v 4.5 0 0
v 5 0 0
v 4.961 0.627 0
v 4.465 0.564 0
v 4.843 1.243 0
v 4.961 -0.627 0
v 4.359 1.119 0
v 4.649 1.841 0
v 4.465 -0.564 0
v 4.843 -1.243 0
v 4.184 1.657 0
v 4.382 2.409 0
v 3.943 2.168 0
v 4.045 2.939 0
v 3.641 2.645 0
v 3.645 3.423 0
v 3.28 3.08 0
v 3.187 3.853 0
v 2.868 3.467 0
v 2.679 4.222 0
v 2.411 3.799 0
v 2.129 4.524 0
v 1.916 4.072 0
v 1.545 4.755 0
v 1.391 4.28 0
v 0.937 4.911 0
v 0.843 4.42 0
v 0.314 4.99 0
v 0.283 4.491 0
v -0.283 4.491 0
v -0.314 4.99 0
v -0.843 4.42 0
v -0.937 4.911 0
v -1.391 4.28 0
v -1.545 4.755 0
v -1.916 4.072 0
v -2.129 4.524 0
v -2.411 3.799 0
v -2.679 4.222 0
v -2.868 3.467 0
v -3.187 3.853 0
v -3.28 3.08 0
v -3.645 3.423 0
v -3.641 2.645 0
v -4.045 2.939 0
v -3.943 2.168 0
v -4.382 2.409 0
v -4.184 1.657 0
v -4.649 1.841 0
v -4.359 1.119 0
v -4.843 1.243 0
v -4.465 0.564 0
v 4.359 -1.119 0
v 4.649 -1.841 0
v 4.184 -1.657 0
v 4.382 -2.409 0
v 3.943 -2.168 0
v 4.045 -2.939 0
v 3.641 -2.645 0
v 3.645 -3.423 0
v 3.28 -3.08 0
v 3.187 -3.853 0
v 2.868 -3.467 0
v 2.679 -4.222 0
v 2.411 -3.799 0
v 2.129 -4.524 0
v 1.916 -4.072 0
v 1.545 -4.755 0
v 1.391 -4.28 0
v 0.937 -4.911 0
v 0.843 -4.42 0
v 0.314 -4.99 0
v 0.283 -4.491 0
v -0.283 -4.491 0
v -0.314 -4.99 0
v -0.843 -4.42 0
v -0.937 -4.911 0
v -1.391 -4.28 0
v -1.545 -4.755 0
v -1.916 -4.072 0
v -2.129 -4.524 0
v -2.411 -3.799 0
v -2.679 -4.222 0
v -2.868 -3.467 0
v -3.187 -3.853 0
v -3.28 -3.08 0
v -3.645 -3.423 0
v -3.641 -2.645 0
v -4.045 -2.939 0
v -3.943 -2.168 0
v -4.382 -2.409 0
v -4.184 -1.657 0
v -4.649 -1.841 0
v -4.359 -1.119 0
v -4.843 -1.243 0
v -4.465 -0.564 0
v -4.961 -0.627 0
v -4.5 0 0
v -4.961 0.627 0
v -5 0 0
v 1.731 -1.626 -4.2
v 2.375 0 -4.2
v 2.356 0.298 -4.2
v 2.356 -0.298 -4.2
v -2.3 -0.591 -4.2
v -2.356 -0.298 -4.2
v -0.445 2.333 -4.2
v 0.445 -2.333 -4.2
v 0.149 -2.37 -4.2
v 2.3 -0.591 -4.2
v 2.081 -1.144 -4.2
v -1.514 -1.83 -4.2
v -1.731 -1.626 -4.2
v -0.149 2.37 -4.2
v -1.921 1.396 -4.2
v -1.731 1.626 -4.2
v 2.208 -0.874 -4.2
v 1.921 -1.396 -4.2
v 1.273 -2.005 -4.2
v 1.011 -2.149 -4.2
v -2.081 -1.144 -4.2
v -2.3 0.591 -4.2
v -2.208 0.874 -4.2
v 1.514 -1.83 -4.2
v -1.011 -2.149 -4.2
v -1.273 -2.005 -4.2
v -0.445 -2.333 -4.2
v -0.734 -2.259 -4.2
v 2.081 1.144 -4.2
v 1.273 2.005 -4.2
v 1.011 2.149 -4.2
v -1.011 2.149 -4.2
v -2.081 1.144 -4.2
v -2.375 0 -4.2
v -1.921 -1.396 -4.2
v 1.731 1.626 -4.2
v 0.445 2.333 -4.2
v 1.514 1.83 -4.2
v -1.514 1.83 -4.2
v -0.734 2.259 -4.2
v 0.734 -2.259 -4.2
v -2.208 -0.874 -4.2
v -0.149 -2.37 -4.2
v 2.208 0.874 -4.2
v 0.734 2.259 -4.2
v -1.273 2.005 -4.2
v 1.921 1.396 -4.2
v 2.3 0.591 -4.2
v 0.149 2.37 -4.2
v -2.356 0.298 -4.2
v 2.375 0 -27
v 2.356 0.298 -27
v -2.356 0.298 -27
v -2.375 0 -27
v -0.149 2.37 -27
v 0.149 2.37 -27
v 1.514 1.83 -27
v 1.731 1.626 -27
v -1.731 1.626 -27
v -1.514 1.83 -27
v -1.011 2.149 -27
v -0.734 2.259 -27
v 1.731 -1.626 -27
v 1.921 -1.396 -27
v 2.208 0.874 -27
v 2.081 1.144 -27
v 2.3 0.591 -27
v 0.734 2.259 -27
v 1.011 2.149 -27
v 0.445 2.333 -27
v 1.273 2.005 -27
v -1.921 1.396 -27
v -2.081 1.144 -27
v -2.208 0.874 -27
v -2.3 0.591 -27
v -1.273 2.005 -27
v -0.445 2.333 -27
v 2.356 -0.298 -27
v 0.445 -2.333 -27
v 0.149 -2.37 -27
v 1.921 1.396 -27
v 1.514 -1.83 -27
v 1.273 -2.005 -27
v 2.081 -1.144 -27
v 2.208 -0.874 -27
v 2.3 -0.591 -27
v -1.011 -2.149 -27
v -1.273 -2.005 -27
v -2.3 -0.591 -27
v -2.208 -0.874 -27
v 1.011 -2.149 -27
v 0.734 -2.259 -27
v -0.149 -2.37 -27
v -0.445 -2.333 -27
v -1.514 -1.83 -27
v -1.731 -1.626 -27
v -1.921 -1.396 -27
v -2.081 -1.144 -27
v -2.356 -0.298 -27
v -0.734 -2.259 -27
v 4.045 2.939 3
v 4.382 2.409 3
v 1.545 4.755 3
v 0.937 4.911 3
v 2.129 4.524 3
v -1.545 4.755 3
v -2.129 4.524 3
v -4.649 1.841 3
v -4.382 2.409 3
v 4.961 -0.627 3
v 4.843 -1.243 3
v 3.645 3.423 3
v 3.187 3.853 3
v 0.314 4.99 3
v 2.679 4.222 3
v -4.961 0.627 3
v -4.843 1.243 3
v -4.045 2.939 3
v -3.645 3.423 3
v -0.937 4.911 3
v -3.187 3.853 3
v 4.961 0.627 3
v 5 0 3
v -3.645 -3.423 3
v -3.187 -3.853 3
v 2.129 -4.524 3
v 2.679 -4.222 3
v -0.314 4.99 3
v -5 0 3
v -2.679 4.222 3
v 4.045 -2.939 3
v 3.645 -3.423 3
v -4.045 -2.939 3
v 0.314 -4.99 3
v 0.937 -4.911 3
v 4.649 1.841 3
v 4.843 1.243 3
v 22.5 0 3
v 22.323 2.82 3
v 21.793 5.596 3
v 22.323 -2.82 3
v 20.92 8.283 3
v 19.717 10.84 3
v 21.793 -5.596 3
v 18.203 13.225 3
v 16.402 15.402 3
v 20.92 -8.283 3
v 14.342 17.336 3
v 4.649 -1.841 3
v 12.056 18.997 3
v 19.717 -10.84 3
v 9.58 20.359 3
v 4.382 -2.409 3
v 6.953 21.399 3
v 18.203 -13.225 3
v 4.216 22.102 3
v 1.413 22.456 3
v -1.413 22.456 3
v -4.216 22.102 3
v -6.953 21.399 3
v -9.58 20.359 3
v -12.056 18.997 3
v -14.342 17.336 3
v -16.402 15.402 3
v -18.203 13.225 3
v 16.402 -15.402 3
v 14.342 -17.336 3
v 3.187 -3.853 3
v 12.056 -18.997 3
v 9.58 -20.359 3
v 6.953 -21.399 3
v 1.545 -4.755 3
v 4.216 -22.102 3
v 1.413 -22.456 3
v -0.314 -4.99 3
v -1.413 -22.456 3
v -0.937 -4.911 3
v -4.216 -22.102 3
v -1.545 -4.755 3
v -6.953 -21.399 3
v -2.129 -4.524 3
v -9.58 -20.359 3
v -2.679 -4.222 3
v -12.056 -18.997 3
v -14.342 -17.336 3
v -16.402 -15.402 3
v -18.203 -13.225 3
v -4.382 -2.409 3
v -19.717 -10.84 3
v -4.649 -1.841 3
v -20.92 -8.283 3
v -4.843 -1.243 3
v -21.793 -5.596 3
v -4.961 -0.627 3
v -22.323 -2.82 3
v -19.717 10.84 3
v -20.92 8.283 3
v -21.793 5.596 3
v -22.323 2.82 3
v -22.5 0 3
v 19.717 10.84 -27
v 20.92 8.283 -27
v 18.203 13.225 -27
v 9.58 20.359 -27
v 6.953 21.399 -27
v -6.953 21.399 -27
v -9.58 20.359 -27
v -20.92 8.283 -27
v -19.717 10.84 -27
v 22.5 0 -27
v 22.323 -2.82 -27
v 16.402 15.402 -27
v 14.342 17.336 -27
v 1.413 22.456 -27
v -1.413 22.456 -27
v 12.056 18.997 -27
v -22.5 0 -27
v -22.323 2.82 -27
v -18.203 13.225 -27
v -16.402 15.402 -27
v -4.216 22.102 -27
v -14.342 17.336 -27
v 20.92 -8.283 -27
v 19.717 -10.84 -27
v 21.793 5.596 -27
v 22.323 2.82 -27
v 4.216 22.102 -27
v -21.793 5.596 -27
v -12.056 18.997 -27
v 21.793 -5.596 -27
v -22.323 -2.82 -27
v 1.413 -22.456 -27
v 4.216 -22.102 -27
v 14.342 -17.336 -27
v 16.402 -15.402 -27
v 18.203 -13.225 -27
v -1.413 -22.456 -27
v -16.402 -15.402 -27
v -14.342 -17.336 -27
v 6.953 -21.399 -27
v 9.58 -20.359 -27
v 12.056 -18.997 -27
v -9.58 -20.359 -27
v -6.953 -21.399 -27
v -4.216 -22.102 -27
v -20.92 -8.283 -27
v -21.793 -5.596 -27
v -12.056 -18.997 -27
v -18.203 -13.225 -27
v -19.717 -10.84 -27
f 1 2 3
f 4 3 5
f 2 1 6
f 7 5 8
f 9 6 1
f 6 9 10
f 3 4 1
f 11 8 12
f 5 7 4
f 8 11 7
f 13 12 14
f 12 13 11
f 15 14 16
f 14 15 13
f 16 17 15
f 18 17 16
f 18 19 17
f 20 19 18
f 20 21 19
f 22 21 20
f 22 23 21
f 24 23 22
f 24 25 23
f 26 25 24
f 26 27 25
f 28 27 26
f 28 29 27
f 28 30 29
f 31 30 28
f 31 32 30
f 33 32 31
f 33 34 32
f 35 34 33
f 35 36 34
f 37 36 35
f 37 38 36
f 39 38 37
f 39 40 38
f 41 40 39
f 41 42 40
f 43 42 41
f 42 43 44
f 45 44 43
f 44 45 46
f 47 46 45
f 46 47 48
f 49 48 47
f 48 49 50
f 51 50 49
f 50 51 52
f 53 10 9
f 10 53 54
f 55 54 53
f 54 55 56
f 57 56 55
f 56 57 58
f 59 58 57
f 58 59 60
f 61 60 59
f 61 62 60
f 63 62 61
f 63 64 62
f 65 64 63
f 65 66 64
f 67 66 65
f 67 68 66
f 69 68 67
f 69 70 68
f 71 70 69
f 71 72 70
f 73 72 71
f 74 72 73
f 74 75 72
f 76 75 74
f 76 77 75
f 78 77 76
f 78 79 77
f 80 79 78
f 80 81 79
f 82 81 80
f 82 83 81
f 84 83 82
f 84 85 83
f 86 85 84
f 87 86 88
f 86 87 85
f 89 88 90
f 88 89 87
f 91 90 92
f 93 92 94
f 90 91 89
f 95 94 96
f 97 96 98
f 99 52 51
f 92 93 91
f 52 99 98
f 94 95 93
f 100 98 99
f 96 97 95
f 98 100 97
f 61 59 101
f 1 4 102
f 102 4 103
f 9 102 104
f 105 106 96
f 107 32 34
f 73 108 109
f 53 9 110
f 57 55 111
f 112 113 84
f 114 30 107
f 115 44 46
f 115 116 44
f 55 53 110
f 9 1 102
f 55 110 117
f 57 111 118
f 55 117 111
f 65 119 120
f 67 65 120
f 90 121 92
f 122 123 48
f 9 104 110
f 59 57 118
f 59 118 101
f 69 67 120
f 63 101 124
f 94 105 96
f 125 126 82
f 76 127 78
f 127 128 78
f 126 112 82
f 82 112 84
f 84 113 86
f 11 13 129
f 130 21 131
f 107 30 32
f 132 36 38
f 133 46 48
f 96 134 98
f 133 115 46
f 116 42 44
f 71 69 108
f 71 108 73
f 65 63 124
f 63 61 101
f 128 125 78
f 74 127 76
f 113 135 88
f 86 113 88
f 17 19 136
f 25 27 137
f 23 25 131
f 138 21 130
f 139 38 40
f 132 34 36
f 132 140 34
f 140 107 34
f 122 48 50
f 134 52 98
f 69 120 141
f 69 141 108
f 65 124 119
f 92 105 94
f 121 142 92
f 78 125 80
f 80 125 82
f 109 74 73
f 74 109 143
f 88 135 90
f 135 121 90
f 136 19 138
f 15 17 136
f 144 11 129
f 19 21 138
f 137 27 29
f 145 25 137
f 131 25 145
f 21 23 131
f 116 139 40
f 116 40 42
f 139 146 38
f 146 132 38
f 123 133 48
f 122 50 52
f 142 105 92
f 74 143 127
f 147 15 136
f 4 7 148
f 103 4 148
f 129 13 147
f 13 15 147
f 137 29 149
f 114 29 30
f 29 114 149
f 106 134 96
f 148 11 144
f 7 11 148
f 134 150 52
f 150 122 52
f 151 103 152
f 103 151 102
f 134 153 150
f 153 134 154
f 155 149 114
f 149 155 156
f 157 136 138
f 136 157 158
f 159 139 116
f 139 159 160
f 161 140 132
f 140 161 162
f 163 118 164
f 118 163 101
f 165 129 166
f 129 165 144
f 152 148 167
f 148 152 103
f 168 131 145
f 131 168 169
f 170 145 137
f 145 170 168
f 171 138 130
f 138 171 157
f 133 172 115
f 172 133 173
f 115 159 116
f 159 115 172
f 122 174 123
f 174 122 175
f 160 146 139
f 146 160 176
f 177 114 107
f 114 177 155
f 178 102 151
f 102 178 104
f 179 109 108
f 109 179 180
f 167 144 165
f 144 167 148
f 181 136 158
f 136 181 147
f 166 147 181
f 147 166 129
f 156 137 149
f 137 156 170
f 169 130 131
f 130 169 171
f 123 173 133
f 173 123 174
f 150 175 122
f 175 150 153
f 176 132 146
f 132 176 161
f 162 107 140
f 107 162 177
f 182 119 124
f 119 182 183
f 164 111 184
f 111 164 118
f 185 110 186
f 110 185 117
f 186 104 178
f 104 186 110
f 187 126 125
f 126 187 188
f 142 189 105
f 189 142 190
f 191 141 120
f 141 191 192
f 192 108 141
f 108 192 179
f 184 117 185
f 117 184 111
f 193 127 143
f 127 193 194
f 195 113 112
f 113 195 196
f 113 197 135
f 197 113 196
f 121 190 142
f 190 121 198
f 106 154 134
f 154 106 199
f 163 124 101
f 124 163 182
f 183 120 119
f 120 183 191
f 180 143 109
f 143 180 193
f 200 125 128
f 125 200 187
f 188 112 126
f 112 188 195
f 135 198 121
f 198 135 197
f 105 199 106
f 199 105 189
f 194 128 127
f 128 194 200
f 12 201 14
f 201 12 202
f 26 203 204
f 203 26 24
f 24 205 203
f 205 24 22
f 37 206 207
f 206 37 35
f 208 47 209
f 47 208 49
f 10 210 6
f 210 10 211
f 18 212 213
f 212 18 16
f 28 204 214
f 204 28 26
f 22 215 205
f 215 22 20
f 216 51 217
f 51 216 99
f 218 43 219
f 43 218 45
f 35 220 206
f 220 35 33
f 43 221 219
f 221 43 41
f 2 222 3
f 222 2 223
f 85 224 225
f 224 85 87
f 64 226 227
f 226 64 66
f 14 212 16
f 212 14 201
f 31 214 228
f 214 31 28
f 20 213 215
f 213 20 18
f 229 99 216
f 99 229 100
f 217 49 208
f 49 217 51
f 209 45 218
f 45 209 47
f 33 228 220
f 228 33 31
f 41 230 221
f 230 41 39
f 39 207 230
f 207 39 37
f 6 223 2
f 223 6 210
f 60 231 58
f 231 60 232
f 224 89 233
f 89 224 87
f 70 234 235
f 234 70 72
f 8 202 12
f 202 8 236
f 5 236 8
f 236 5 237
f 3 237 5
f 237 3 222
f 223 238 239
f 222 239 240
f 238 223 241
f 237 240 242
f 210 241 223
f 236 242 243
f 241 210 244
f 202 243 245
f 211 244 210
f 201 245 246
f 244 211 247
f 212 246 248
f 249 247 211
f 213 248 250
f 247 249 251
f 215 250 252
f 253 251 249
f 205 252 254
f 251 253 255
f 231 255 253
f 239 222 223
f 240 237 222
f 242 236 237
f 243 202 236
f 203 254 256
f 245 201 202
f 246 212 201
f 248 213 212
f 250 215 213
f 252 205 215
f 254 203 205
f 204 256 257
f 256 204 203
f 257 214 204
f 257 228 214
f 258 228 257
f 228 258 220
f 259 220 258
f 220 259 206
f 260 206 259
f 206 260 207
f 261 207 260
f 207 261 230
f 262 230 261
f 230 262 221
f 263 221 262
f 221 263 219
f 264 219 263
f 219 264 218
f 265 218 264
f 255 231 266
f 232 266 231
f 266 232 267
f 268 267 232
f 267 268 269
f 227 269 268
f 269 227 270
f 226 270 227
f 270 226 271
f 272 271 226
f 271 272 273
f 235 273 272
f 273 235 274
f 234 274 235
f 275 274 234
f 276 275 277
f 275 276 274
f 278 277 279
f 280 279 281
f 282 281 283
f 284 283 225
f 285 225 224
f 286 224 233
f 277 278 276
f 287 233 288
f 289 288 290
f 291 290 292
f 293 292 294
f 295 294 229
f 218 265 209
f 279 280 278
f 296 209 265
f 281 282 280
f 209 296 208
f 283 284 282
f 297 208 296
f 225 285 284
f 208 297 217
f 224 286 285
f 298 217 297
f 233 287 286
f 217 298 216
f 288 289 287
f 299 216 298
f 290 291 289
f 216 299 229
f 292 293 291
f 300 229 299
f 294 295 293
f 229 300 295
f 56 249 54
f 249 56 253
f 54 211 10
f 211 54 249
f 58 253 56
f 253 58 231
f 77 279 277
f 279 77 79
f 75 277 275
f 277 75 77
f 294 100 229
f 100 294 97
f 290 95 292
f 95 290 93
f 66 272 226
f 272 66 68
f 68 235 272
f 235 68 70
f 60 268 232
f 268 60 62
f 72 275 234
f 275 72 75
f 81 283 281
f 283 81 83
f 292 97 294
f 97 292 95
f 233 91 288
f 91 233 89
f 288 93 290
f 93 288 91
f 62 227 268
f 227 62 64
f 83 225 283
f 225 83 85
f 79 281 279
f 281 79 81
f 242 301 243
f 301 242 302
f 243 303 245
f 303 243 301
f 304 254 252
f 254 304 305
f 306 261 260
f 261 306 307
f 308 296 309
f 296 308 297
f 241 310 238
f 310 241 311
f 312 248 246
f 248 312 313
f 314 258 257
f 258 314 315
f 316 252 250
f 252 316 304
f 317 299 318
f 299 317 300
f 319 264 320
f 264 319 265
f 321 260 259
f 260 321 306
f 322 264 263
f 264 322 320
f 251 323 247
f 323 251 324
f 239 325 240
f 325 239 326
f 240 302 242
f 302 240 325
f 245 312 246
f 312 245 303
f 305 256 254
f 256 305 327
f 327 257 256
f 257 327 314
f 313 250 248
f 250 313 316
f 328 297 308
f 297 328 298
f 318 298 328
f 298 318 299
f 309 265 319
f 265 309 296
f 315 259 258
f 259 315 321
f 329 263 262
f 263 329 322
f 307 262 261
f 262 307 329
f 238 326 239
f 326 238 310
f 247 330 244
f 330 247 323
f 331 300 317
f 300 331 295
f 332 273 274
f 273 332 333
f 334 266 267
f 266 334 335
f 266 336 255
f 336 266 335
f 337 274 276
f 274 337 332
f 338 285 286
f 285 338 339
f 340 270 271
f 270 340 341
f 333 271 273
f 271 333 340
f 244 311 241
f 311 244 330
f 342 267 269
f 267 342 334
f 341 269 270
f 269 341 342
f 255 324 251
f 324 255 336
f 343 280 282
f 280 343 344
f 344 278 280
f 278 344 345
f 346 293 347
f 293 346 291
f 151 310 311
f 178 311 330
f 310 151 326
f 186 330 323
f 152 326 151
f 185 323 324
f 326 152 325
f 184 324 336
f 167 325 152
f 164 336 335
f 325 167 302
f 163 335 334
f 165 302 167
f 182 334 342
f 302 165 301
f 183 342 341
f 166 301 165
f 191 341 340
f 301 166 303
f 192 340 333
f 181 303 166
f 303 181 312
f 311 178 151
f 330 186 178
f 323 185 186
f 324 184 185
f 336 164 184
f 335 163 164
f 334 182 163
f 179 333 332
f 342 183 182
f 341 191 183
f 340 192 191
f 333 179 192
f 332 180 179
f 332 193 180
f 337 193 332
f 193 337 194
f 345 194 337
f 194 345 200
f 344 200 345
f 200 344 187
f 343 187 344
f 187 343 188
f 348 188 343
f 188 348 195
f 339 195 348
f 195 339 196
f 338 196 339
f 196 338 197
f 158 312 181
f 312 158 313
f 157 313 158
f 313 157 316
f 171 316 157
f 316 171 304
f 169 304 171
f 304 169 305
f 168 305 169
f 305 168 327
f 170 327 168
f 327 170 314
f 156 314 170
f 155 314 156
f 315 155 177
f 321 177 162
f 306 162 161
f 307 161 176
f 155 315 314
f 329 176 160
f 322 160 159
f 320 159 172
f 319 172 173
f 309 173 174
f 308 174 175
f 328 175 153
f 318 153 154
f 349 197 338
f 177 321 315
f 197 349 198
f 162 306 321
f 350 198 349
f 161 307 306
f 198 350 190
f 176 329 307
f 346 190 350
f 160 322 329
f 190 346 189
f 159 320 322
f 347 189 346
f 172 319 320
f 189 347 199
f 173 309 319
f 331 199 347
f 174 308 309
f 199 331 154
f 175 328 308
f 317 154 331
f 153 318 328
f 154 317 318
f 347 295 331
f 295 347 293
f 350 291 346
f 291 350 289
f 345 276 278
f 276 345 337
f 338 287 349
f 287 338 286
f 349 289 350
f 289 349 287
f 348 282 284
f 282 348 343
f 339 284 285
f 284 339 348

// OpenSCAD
$fn = 50;


difference() {
	union() {
		translate(v = [0, 0, -27.0000000000]) {
			cylinder(h = 30, r = 22.5000000000);
		}
	}
	union() {
		translate(v = [0, 0, 0]) {
			rotate(a = [0, 0, 0]) {
				difference() {
					union() {
						translate(v = [0, 0, -30.0000000000]) {
							cylinder(h = 30, r = 2.2500000000);
						}
						translate(v = [0, 0, -4.2000000000]) {
							cylinder(h = 4.2000000000, r1 = 2.3750000000, r2 = 4.5000000000);
						}
						translate(v = [0, 0, -30.0000000000]) {
							cylinder(h = 30, r = 2.3750000000);
						}
						translate(v = [0, 0, -30.0000000000]) {
							cylinder(h = 30, r = 2.2500000000);
						}
					}
					union();
				}
			}
		}
		#cylinder(h = 3, r = 5.0000000000);
	}
}
